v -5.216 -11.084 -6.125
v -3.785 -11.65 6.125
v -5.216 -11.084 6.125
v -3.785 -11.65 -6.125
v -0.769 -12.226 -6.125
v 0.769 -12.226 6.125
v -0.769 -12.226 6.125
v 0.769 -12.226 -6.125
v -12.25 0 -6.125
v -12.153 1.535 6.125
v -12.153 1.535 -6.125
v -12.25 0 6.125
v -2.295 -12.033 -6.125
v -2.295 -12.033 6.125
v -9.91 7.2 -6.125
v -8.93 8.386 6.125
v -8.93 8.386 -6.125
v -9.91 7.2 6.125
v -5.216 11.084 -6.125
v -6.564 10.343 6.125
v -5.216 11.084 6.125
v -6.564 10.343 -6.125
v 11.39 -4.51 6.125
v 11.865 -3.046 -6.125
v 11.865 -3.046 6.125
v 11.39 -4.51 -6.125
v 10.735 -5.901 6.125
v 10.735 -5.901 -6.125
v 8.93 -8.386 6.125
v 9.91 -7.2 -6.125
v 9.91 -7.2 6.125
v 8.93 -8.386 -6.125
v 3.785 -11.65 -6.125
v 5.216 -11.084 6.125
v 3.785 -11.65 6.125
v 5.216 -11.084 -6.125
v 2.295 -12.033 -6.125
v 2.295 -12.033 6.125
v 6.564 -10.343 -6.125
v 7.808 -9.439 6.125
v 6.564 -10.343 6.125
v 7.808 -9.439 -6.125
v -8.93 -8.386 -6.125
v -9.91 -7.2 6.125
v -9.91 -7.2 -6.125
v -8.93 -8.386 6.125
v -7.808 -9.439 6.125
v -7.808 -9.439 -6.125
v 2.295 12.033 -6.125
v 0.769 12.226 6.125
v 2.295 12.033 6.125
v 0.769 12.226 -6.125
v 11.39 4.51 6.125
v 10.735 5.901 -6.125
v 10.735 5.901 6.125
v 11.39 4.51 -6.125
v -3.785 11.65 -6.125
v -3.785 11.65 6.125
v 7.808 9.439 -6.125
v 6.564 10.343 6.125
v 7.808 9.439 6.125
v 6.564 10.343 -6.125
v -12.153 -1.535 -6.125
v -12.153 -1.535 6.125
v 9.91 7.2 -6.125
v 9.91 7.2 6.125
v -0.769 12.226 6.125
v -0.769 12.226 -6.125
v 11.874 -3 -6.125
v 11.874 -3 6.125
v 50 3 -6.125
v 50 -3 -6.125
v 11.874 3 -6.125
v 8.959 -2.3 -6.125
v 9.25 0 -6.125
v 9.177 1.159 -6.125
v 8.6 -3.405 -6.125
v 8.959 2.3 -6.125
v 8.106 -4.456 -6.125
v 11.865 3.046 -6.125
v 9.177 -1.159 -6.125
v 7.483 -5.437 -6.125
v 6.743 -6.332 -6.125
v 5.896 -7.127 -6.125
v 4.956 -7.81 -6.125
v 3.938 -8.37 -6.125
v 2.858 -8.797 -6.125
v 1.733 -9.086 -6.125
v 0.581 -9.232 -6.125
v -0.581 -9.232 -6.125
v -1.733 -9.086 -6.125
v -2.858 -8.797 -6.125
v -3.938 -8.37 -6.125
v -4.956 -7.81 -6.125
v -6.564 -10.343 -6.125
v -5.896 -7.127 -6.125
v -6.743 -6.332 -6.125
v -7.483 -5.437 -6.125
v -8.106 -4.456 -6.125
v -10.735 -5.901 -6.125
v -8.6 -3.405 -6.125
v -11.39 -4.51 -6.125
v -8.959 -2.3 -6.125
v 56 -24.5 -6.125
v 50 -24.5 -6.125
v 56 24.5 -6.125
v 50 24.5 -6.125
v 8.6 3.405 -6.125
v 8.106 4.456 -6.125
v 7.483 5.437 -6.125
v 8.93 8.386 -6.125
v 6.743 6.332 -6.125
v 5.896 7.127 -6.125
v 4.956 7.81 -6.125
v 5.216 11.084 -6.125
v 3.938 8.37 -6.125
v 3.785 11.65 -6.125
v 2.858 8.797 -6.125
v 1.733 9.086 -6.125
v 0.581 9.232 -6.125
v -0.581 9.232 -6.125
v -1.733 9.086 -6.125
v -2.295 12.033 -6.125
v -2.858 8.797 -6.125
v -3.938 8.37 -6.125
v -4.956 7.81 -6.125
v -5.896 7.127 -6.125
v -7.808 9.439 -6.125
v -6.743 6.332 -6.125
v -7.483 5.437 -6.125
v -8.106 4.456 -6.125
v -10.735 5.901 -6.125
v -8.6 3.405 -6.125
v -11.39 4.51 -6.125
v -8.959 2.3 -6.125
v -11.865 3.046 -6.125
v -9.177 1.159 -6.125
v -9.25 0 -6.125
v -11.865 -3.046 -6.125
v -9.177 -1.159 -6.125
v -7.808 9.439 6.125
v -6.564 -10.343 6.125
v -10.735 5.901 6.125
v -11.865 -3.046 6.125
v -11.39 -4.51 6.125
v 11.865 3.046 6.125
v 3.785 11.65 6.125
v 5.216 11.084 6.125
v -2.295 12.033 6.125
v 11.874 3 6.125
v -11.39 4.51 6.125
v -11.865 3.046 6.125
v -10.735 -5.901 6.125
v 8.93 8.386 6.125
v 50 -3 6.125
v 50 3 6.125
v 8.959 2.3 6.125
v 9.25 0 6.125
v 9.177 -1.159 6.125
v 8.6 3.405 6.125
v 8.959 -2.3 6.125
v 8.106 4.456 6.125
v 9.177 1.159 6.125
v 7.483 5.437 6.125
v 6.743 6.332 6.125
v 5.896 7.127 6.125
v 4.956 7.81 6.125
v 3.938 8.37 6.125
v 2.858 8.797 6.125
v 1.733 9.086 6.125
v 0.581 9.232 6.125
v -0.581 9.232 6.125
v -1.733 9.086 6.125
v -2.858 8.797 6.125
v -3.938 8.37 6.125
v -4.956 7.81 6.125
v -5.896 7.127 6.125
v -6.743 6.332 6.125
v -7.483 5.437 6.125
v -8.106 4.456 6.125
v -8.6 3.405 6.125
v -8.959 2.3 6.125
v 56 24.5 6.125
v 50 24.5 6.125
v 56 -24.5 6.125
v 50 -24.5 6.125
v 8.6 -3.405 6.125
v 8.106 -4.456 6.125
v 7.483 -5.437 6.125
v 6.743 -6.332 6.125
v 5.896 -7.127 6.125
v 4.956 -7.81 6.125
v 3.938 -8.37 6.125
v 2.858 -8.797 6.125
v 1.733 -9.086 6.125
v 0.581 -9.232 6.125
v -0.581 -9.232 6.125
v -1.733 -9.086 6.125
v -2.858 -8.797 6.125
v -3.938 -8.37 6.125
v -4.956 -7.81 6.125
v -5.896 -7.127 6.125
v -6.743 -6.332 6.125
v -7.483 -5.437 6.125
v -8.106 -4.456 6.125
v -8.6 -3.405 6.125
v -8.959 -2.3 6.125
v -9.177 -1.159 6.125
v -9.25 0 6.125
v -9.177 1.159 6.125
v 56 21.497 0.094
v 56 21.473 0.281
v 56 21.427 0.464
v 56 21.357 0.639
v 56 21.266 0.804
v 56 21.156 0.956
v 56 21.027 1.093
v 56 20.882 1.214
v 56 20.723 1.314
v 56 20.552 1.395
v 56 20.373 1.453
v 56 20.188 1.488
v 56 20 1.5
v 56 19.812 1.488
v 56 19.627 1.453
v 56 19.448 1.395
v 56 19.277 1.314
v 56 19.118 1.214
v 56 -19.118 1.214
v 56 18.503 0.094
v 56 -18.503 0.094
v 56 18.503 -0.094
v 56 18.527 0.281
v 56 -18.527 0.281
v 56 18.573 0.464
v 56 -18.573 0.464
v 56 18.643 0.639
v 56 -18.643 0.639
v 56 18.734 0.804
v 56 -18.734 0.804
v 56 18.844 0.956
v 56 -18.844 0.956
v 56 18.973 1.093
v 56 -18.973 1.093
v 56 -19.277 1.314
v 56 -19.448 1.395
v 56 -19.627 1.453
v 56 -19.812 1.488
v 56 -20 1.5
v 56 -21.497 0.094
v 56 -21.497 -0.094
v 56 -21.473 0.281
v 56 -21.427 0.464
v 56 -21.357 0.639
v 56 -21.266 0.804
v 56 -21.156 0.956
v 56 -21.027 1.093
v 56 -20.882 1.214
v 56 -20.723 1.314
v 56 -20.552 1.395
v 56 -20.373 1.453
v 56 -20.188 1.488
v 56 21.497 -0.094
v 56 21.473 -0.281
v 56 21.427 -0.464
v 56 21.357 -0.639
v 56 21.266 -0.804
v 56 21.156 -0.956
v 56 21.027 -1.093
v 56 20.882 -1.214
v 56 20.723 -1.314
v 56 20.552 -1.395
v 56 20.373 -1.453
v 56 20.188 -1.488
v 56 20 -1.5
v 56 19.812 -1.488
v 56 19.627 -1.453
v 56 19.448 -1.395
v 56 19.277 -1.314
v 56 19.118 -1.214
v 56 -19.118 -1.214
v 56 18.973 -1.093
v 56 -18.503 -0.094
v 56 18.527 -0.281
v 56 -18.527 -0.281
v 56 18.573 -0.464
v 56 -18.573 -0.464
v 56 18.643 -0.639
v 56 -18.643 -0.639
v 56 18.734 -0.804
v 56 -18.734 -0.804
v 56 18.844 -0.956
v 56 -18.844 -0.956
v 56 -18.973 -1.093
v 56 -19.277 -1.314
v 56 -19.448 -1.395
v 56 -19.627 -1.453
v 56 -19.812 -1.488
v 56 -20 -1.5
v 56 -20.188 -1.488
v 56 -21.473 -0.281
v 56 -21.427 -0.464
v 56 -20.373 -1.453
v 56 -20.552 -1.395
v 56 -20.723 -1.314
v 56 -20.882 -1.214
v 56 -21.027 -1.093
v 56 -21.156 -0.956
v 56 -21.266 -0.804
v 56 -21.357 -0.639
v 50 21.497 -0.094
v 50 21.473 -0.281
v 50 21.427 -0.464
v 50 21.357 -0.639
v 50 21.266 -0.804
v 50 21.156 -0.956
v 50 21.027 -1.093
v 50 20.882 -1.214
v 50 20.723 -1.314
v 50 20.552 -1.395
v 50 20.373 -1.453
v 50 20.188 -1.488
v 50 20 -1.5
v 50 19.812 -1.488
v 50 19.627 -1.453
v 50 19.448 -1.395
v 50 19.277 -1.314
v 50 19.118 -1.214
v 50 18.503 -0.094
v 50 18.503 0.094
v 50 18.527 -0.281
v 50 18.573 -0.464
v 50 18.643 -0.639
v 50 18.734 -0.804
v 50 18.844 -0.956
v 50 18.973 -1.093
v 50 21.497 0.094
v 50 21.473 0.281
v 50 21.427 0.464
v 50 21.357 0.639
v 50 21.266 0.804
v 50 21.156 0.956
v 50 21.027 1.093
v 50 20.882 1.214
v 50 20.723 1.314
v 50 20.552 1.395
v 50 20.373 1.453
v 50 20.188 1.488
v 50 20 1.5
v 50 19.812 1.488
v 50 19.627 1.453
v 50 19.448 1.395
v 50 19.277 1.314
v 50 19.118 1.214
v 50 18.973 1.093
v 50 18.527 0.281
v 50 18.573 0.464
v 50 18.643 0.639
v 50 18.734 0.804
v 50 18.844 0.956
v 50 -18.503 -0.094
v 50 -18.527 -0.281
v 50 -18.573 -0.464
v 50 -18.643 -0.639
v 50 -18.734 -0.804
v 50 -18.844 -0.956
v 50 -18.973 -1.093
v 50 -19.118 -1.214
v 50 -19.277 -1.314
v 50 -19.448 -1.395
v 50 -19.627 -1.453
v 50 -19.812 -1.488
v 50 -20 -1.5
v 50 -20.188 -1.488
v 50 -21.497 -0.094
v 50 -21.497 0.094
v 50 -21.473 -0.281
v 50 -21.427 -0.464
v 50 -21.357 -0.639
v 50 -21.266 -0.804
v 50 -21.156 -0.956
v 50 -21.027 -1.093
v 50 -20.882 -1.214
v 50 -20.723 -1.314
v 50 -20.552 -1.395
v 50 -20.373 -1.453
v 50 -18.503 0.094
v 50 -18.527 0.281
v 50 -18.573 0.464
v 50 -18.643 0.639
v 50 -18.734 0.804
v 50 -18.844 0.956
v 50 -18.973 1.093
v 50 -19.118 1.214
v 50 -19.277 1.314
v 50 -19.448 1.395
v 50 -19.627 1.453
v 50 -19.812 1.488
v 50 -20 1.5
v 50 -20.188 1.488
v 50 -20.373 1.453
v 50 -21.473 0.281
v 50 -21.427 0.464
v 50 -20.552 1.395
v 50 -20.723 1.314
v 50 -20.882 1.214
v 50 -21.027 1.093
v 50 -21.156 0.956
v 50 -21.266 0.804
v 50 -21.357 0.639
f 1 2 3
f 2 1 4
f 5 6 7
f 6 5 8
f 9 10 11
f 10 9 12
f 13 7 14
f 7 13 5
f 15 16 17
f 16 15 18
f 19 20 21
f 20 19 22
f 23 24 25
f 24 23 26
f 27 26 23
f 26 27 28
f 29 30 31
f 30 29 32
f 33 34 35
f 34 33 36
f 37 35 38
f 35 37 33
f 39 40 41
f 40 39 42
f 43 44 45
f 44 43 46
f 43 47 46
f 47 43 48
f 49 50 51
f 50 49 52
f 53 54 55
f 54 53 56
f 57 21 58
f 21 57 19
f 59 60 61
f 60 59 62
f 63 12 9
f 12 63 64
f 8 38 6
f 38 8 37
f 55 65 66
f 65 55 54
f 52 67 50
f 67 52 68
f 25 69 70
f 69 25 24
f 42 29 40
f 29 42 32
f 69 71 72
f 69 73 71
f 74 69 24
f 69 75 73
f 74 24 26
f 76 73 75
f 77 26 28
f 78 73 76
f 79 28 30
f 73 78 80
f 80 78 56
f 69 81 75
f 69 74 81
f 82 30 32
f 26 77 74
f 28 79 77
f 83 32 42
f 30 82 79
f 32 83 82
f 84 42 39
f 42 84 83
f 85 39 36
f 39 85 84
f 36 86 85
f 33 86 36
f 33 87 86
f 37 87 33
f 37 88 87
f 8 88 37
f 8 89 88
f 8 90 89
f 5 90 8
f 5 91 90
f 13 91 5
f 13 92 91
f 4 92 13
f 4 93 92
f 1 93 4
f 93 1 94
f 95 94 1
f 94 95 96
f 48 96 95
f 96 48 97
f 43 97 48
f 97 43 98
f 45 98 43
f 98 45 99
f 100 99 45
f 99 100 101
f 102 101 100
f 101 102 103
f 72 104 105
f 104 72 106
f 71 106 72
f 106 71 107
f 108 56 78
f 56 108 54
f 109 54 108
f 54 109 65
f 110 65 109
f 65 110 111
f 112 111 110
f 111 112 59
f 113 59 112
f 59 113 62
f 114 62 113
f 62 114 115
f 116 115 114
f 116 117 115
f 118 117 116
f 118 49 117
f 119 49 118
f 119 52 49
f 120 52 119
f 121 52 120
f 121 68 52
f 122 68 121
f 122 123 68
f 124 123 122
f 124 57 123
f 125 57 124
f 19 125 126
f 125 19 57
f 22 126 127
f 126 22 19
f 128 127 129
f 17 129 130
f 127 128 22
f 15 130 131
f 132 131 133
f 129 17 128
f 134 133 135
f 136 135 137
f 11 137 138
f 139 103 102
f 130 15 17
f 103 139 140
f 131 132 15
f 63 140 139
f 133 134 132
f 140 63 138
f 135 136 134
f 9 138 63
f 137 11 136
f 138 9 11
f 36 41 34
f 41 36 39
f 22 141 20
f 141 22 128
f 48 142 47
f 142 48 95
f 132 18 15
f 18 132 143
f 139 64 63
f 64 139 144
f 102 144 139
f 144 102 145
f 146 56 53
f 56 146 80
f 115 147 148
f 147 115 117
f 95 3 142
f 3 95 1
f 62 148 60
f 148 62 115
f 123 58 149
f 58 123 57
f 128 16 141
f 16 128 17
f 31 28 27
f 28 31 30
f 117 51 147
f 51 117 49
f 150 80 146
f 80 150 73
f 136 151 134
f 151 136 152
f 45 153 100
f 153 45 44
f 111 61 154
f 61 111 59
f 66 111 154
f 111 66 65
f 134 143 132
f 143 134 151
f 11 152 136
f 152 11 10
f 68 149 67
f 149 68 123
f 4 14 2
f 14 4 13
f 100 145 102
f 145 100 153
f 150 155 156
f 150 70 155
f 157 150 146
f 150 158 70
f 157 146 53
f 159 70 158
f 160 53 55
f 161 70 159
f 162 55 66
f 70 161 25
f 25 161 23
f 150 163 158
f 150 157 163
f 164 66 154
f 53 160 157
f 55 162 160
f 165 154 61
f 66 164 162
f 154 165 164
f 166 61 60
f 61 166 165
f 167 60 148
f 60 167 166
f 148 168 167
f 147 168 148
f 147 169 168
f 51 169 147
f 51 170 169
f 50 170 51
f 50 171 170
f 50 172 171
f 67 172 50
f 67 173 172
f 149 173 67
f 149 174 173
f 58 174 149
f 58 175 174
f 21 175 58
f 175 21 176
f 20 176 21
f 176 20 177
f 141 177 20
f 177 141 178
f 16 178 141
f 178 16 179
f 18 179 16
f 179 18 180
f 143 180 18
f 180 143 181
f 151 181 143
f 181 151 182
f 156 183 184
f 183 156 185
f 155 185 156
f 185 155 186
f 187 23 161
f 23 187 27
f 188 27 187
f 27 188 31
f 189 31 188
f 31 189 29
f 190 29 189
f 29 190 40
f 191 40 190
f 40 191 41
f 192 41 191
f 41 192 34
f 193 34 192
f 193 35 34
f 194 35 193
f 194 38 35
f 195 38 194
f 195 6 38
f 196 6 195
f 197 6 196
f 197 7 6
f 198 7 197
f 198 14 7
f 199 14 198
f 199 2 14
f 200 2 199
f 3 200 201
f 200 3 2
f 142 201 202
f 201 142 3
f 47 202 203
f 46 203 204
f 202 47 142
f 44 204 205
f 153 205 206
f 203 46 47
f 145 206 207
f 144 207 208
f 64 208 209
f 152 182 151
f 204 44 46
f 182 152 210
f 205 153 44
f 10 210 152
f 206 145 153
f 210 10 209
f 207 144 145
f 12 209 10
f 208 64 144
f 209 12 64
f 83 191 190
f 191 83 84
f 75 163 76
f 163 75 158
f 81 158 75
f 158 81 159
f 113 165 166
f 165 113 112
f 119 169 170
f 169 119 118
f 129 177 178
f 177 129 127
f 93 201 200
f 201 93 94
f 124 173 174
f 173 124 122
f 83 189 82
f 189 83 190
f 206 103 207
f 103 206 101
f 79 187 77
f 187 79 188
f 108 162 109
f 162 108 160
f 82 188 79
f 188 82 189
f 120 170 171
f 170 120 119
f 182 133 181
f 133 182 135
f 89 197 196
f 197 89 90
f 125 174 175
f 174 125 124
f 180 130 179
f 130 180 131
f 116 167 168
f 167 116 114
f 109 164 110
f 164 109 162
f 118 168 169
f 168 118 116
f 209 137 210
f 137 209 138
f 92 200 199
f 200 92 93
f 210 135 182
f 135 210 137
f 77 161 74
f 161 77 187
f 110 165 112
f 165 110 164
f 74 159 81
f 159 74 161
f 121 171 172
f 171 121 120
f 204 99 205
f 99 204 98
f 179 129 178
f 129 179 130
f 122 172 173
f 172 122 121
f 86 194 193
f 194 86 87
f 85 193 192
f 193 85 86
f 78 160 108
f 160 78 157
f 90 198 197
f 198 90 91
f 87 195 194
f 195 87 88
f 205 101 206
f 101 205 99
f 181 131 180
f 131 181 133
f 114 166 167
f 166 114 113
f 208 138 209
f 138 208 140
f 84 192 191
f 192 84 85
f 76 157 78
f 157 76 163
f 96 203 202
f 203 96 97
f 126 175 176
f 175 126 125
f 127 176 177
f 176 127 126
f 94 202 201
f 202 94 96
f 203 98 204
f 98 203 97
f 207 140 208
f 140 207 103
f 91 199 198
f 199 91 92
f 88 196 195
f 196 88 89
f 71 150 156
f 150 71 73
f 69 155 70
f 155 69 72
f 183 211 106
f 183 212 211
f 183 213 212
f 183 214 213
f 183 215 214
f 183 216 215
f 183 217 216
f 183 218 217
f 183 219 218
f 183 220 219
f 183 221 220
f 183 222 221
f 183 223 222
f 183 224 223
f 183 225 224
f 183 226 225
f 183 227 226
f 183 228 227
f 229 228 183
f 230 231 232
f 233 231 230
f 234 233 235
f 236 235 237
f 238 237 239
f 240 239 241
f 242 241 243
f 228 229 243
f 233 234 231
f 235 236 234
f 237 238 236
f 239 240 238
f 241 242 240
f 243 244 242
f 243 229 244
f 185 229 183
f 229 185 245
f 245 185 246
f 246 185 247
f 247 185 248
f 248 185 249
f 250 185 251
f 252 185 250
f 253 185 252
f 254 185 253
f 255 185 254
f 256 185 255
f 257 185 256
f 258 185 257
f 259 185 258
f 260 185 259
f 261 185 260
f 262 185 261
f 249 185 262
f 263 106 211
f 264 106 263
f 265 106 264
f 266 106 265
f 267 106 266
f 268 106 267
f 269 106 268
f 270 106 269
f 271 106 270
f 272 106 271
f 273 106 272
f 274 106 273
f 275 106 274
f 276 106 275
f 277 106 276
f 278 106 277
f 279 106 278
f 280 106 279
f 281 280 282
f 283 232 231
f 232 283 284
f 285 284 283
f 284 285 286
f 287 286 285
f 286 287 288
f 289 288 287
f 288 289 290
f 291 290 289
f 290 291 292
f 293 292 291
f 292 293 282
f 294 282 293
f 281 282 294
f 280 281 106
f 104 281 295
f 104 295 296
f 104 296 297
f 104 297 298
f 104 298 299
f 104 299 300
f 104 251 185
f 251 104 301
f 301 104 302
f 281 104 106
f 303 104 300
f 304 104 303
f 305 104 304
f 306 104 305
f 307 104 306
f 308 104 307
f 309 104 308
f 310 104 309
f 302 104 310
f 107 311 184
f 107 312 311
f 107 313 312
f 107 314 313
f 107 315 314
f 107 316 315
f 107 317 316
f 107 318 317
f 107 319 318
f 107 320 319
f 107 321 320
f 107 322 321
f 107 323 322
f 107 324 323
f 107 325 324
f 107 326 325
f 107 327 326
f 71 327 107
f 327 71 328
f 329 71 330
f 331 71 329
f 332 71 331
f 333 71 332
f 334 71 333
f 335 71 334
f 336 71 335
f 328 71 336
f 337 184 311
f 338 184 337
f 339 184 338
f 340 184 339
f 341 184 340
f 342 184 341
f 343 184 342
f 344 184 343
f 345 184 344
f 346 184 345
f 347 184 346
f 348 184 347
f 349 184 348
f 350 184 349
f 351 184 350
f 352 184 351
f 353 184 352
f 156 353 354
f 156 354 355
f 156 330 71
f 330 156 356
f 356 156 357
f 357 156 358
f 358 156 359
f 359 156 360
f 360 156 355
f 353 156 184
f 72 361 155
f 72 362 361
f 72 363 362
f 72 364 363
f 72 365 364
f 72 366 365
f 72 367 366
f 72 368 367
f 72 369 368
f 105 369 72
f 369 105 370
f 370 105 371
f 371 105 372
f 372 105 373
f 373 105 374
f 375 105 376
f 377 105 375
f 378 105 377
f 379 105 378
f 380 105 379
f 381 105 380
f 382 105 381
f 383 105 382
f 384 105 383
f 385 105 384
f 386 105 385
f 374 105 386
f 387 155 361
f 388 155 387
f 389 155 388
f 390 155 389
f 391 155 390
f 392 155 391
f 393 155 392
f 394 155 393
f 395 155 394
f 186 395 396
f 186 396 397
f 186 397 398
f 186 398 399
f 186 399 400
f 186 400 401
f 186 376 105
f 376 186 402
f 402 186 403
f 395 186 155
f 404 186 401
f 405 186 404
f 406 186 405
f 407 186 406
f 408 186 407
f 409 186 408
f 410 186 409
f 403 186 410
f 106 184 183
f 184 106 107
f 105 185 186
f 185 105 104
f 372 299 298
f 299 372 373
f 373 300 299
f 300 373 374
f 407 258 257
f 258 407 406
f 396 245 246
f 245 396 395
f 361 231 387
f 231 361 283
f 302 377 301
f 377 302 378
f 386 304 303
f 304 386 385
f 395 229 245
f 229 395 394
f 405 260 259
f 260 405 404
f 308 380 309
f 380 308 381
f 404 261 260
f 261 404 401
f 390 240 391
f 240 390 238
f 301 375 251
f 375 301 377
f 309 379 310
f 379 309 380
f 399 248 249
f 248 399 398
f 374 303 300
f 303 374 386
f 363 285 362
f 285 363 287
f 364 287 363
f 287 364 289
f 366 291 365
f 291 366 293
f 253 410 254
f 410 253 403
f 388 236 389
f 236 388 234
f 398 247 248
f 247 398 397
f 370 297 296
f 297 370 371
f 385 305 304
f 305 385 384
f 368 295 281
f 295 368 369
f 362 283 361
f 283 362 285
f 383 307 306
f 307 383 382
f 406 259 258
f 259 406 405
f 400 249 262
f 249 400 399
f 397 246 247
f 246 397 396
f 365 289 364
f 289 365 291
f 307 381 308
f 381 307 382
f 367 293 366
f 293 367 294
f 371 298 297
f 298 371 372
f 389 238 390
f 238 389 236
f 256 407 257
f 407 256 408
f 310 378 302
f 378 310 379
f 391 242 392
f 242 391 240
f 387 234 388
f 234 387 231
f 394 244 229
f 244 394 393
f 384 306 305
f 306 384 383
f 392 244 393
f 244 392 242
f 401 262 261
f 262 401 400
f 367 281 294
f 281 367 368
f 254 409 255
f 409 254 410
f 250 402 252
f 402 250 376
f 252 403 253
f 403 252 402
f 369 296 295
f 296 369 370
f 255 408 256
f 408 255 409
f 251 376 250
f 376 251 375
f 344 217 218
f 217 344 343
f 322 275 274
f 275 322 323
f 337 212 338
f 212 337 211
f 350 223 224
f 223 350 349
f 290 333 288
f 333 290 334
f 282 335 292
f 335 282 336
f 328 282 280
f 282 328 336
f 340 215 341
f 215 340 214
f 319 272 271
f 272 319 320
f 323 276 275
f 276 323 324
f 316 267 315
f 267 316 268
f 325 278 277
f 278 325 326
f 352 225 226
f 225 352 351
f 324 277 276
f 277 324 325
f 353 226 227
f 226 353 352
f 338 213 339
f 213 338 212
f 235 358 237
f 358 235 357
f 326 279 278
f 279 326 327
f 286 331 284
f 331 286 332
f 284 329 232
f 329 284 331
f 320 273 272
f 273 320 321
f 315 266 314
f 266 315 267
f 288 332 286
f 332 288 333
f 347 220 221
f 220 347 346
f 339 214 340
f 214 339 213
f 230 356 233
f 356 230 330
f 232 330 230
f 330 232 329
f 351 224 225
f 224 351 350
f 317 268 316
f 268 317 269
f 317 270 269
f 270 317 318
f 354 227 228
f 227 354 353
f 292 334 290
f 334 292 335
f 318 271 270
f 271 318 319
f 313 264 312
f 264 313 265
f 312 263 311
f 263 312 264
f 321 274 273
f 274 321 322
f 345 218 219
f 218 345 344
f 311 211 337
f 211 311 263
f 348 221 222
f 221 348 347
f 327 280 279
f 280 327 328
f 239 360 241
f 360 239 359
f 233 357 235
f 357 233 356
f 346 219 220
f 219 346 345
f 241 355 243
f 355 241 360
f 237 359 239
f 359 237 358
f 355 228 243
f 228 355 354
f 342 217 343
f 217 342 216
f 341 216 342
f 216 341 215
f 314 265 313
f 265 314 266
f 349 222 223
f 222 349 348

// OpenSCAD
$fn = 50.0;

rad = 18.5 / 2;

difference() {
    union() {
        difference() {
            cylinder(h = rad + 3.0, r = rad + 3.0, center = true);
            cylinder(h = 30, r = rad, center = true);
        }
        translate([rad + 1.0, -3, -(rad + 3.0) / 2]){
            cube([40.0, 6.0, rad + 3.0], center = false);
        }
        translate([50, -2*(rad + 3.0), -(rad + 3.0) / 2]){
            cube([6, 4*(rad + 3.0), rad + 3.0]);
        }
        
    }
    translate([51, -20, 0]) {
        rotate([0, 90, 0]) {
            cylinder(r = 1.5, h = 10, center = true);
        }
    }
    translate([51, 20, 0]) {
        rotate([0, 90, 0]) {
            cylinder(r = 1.5, h = 10, center = true);
        }
    }
}
